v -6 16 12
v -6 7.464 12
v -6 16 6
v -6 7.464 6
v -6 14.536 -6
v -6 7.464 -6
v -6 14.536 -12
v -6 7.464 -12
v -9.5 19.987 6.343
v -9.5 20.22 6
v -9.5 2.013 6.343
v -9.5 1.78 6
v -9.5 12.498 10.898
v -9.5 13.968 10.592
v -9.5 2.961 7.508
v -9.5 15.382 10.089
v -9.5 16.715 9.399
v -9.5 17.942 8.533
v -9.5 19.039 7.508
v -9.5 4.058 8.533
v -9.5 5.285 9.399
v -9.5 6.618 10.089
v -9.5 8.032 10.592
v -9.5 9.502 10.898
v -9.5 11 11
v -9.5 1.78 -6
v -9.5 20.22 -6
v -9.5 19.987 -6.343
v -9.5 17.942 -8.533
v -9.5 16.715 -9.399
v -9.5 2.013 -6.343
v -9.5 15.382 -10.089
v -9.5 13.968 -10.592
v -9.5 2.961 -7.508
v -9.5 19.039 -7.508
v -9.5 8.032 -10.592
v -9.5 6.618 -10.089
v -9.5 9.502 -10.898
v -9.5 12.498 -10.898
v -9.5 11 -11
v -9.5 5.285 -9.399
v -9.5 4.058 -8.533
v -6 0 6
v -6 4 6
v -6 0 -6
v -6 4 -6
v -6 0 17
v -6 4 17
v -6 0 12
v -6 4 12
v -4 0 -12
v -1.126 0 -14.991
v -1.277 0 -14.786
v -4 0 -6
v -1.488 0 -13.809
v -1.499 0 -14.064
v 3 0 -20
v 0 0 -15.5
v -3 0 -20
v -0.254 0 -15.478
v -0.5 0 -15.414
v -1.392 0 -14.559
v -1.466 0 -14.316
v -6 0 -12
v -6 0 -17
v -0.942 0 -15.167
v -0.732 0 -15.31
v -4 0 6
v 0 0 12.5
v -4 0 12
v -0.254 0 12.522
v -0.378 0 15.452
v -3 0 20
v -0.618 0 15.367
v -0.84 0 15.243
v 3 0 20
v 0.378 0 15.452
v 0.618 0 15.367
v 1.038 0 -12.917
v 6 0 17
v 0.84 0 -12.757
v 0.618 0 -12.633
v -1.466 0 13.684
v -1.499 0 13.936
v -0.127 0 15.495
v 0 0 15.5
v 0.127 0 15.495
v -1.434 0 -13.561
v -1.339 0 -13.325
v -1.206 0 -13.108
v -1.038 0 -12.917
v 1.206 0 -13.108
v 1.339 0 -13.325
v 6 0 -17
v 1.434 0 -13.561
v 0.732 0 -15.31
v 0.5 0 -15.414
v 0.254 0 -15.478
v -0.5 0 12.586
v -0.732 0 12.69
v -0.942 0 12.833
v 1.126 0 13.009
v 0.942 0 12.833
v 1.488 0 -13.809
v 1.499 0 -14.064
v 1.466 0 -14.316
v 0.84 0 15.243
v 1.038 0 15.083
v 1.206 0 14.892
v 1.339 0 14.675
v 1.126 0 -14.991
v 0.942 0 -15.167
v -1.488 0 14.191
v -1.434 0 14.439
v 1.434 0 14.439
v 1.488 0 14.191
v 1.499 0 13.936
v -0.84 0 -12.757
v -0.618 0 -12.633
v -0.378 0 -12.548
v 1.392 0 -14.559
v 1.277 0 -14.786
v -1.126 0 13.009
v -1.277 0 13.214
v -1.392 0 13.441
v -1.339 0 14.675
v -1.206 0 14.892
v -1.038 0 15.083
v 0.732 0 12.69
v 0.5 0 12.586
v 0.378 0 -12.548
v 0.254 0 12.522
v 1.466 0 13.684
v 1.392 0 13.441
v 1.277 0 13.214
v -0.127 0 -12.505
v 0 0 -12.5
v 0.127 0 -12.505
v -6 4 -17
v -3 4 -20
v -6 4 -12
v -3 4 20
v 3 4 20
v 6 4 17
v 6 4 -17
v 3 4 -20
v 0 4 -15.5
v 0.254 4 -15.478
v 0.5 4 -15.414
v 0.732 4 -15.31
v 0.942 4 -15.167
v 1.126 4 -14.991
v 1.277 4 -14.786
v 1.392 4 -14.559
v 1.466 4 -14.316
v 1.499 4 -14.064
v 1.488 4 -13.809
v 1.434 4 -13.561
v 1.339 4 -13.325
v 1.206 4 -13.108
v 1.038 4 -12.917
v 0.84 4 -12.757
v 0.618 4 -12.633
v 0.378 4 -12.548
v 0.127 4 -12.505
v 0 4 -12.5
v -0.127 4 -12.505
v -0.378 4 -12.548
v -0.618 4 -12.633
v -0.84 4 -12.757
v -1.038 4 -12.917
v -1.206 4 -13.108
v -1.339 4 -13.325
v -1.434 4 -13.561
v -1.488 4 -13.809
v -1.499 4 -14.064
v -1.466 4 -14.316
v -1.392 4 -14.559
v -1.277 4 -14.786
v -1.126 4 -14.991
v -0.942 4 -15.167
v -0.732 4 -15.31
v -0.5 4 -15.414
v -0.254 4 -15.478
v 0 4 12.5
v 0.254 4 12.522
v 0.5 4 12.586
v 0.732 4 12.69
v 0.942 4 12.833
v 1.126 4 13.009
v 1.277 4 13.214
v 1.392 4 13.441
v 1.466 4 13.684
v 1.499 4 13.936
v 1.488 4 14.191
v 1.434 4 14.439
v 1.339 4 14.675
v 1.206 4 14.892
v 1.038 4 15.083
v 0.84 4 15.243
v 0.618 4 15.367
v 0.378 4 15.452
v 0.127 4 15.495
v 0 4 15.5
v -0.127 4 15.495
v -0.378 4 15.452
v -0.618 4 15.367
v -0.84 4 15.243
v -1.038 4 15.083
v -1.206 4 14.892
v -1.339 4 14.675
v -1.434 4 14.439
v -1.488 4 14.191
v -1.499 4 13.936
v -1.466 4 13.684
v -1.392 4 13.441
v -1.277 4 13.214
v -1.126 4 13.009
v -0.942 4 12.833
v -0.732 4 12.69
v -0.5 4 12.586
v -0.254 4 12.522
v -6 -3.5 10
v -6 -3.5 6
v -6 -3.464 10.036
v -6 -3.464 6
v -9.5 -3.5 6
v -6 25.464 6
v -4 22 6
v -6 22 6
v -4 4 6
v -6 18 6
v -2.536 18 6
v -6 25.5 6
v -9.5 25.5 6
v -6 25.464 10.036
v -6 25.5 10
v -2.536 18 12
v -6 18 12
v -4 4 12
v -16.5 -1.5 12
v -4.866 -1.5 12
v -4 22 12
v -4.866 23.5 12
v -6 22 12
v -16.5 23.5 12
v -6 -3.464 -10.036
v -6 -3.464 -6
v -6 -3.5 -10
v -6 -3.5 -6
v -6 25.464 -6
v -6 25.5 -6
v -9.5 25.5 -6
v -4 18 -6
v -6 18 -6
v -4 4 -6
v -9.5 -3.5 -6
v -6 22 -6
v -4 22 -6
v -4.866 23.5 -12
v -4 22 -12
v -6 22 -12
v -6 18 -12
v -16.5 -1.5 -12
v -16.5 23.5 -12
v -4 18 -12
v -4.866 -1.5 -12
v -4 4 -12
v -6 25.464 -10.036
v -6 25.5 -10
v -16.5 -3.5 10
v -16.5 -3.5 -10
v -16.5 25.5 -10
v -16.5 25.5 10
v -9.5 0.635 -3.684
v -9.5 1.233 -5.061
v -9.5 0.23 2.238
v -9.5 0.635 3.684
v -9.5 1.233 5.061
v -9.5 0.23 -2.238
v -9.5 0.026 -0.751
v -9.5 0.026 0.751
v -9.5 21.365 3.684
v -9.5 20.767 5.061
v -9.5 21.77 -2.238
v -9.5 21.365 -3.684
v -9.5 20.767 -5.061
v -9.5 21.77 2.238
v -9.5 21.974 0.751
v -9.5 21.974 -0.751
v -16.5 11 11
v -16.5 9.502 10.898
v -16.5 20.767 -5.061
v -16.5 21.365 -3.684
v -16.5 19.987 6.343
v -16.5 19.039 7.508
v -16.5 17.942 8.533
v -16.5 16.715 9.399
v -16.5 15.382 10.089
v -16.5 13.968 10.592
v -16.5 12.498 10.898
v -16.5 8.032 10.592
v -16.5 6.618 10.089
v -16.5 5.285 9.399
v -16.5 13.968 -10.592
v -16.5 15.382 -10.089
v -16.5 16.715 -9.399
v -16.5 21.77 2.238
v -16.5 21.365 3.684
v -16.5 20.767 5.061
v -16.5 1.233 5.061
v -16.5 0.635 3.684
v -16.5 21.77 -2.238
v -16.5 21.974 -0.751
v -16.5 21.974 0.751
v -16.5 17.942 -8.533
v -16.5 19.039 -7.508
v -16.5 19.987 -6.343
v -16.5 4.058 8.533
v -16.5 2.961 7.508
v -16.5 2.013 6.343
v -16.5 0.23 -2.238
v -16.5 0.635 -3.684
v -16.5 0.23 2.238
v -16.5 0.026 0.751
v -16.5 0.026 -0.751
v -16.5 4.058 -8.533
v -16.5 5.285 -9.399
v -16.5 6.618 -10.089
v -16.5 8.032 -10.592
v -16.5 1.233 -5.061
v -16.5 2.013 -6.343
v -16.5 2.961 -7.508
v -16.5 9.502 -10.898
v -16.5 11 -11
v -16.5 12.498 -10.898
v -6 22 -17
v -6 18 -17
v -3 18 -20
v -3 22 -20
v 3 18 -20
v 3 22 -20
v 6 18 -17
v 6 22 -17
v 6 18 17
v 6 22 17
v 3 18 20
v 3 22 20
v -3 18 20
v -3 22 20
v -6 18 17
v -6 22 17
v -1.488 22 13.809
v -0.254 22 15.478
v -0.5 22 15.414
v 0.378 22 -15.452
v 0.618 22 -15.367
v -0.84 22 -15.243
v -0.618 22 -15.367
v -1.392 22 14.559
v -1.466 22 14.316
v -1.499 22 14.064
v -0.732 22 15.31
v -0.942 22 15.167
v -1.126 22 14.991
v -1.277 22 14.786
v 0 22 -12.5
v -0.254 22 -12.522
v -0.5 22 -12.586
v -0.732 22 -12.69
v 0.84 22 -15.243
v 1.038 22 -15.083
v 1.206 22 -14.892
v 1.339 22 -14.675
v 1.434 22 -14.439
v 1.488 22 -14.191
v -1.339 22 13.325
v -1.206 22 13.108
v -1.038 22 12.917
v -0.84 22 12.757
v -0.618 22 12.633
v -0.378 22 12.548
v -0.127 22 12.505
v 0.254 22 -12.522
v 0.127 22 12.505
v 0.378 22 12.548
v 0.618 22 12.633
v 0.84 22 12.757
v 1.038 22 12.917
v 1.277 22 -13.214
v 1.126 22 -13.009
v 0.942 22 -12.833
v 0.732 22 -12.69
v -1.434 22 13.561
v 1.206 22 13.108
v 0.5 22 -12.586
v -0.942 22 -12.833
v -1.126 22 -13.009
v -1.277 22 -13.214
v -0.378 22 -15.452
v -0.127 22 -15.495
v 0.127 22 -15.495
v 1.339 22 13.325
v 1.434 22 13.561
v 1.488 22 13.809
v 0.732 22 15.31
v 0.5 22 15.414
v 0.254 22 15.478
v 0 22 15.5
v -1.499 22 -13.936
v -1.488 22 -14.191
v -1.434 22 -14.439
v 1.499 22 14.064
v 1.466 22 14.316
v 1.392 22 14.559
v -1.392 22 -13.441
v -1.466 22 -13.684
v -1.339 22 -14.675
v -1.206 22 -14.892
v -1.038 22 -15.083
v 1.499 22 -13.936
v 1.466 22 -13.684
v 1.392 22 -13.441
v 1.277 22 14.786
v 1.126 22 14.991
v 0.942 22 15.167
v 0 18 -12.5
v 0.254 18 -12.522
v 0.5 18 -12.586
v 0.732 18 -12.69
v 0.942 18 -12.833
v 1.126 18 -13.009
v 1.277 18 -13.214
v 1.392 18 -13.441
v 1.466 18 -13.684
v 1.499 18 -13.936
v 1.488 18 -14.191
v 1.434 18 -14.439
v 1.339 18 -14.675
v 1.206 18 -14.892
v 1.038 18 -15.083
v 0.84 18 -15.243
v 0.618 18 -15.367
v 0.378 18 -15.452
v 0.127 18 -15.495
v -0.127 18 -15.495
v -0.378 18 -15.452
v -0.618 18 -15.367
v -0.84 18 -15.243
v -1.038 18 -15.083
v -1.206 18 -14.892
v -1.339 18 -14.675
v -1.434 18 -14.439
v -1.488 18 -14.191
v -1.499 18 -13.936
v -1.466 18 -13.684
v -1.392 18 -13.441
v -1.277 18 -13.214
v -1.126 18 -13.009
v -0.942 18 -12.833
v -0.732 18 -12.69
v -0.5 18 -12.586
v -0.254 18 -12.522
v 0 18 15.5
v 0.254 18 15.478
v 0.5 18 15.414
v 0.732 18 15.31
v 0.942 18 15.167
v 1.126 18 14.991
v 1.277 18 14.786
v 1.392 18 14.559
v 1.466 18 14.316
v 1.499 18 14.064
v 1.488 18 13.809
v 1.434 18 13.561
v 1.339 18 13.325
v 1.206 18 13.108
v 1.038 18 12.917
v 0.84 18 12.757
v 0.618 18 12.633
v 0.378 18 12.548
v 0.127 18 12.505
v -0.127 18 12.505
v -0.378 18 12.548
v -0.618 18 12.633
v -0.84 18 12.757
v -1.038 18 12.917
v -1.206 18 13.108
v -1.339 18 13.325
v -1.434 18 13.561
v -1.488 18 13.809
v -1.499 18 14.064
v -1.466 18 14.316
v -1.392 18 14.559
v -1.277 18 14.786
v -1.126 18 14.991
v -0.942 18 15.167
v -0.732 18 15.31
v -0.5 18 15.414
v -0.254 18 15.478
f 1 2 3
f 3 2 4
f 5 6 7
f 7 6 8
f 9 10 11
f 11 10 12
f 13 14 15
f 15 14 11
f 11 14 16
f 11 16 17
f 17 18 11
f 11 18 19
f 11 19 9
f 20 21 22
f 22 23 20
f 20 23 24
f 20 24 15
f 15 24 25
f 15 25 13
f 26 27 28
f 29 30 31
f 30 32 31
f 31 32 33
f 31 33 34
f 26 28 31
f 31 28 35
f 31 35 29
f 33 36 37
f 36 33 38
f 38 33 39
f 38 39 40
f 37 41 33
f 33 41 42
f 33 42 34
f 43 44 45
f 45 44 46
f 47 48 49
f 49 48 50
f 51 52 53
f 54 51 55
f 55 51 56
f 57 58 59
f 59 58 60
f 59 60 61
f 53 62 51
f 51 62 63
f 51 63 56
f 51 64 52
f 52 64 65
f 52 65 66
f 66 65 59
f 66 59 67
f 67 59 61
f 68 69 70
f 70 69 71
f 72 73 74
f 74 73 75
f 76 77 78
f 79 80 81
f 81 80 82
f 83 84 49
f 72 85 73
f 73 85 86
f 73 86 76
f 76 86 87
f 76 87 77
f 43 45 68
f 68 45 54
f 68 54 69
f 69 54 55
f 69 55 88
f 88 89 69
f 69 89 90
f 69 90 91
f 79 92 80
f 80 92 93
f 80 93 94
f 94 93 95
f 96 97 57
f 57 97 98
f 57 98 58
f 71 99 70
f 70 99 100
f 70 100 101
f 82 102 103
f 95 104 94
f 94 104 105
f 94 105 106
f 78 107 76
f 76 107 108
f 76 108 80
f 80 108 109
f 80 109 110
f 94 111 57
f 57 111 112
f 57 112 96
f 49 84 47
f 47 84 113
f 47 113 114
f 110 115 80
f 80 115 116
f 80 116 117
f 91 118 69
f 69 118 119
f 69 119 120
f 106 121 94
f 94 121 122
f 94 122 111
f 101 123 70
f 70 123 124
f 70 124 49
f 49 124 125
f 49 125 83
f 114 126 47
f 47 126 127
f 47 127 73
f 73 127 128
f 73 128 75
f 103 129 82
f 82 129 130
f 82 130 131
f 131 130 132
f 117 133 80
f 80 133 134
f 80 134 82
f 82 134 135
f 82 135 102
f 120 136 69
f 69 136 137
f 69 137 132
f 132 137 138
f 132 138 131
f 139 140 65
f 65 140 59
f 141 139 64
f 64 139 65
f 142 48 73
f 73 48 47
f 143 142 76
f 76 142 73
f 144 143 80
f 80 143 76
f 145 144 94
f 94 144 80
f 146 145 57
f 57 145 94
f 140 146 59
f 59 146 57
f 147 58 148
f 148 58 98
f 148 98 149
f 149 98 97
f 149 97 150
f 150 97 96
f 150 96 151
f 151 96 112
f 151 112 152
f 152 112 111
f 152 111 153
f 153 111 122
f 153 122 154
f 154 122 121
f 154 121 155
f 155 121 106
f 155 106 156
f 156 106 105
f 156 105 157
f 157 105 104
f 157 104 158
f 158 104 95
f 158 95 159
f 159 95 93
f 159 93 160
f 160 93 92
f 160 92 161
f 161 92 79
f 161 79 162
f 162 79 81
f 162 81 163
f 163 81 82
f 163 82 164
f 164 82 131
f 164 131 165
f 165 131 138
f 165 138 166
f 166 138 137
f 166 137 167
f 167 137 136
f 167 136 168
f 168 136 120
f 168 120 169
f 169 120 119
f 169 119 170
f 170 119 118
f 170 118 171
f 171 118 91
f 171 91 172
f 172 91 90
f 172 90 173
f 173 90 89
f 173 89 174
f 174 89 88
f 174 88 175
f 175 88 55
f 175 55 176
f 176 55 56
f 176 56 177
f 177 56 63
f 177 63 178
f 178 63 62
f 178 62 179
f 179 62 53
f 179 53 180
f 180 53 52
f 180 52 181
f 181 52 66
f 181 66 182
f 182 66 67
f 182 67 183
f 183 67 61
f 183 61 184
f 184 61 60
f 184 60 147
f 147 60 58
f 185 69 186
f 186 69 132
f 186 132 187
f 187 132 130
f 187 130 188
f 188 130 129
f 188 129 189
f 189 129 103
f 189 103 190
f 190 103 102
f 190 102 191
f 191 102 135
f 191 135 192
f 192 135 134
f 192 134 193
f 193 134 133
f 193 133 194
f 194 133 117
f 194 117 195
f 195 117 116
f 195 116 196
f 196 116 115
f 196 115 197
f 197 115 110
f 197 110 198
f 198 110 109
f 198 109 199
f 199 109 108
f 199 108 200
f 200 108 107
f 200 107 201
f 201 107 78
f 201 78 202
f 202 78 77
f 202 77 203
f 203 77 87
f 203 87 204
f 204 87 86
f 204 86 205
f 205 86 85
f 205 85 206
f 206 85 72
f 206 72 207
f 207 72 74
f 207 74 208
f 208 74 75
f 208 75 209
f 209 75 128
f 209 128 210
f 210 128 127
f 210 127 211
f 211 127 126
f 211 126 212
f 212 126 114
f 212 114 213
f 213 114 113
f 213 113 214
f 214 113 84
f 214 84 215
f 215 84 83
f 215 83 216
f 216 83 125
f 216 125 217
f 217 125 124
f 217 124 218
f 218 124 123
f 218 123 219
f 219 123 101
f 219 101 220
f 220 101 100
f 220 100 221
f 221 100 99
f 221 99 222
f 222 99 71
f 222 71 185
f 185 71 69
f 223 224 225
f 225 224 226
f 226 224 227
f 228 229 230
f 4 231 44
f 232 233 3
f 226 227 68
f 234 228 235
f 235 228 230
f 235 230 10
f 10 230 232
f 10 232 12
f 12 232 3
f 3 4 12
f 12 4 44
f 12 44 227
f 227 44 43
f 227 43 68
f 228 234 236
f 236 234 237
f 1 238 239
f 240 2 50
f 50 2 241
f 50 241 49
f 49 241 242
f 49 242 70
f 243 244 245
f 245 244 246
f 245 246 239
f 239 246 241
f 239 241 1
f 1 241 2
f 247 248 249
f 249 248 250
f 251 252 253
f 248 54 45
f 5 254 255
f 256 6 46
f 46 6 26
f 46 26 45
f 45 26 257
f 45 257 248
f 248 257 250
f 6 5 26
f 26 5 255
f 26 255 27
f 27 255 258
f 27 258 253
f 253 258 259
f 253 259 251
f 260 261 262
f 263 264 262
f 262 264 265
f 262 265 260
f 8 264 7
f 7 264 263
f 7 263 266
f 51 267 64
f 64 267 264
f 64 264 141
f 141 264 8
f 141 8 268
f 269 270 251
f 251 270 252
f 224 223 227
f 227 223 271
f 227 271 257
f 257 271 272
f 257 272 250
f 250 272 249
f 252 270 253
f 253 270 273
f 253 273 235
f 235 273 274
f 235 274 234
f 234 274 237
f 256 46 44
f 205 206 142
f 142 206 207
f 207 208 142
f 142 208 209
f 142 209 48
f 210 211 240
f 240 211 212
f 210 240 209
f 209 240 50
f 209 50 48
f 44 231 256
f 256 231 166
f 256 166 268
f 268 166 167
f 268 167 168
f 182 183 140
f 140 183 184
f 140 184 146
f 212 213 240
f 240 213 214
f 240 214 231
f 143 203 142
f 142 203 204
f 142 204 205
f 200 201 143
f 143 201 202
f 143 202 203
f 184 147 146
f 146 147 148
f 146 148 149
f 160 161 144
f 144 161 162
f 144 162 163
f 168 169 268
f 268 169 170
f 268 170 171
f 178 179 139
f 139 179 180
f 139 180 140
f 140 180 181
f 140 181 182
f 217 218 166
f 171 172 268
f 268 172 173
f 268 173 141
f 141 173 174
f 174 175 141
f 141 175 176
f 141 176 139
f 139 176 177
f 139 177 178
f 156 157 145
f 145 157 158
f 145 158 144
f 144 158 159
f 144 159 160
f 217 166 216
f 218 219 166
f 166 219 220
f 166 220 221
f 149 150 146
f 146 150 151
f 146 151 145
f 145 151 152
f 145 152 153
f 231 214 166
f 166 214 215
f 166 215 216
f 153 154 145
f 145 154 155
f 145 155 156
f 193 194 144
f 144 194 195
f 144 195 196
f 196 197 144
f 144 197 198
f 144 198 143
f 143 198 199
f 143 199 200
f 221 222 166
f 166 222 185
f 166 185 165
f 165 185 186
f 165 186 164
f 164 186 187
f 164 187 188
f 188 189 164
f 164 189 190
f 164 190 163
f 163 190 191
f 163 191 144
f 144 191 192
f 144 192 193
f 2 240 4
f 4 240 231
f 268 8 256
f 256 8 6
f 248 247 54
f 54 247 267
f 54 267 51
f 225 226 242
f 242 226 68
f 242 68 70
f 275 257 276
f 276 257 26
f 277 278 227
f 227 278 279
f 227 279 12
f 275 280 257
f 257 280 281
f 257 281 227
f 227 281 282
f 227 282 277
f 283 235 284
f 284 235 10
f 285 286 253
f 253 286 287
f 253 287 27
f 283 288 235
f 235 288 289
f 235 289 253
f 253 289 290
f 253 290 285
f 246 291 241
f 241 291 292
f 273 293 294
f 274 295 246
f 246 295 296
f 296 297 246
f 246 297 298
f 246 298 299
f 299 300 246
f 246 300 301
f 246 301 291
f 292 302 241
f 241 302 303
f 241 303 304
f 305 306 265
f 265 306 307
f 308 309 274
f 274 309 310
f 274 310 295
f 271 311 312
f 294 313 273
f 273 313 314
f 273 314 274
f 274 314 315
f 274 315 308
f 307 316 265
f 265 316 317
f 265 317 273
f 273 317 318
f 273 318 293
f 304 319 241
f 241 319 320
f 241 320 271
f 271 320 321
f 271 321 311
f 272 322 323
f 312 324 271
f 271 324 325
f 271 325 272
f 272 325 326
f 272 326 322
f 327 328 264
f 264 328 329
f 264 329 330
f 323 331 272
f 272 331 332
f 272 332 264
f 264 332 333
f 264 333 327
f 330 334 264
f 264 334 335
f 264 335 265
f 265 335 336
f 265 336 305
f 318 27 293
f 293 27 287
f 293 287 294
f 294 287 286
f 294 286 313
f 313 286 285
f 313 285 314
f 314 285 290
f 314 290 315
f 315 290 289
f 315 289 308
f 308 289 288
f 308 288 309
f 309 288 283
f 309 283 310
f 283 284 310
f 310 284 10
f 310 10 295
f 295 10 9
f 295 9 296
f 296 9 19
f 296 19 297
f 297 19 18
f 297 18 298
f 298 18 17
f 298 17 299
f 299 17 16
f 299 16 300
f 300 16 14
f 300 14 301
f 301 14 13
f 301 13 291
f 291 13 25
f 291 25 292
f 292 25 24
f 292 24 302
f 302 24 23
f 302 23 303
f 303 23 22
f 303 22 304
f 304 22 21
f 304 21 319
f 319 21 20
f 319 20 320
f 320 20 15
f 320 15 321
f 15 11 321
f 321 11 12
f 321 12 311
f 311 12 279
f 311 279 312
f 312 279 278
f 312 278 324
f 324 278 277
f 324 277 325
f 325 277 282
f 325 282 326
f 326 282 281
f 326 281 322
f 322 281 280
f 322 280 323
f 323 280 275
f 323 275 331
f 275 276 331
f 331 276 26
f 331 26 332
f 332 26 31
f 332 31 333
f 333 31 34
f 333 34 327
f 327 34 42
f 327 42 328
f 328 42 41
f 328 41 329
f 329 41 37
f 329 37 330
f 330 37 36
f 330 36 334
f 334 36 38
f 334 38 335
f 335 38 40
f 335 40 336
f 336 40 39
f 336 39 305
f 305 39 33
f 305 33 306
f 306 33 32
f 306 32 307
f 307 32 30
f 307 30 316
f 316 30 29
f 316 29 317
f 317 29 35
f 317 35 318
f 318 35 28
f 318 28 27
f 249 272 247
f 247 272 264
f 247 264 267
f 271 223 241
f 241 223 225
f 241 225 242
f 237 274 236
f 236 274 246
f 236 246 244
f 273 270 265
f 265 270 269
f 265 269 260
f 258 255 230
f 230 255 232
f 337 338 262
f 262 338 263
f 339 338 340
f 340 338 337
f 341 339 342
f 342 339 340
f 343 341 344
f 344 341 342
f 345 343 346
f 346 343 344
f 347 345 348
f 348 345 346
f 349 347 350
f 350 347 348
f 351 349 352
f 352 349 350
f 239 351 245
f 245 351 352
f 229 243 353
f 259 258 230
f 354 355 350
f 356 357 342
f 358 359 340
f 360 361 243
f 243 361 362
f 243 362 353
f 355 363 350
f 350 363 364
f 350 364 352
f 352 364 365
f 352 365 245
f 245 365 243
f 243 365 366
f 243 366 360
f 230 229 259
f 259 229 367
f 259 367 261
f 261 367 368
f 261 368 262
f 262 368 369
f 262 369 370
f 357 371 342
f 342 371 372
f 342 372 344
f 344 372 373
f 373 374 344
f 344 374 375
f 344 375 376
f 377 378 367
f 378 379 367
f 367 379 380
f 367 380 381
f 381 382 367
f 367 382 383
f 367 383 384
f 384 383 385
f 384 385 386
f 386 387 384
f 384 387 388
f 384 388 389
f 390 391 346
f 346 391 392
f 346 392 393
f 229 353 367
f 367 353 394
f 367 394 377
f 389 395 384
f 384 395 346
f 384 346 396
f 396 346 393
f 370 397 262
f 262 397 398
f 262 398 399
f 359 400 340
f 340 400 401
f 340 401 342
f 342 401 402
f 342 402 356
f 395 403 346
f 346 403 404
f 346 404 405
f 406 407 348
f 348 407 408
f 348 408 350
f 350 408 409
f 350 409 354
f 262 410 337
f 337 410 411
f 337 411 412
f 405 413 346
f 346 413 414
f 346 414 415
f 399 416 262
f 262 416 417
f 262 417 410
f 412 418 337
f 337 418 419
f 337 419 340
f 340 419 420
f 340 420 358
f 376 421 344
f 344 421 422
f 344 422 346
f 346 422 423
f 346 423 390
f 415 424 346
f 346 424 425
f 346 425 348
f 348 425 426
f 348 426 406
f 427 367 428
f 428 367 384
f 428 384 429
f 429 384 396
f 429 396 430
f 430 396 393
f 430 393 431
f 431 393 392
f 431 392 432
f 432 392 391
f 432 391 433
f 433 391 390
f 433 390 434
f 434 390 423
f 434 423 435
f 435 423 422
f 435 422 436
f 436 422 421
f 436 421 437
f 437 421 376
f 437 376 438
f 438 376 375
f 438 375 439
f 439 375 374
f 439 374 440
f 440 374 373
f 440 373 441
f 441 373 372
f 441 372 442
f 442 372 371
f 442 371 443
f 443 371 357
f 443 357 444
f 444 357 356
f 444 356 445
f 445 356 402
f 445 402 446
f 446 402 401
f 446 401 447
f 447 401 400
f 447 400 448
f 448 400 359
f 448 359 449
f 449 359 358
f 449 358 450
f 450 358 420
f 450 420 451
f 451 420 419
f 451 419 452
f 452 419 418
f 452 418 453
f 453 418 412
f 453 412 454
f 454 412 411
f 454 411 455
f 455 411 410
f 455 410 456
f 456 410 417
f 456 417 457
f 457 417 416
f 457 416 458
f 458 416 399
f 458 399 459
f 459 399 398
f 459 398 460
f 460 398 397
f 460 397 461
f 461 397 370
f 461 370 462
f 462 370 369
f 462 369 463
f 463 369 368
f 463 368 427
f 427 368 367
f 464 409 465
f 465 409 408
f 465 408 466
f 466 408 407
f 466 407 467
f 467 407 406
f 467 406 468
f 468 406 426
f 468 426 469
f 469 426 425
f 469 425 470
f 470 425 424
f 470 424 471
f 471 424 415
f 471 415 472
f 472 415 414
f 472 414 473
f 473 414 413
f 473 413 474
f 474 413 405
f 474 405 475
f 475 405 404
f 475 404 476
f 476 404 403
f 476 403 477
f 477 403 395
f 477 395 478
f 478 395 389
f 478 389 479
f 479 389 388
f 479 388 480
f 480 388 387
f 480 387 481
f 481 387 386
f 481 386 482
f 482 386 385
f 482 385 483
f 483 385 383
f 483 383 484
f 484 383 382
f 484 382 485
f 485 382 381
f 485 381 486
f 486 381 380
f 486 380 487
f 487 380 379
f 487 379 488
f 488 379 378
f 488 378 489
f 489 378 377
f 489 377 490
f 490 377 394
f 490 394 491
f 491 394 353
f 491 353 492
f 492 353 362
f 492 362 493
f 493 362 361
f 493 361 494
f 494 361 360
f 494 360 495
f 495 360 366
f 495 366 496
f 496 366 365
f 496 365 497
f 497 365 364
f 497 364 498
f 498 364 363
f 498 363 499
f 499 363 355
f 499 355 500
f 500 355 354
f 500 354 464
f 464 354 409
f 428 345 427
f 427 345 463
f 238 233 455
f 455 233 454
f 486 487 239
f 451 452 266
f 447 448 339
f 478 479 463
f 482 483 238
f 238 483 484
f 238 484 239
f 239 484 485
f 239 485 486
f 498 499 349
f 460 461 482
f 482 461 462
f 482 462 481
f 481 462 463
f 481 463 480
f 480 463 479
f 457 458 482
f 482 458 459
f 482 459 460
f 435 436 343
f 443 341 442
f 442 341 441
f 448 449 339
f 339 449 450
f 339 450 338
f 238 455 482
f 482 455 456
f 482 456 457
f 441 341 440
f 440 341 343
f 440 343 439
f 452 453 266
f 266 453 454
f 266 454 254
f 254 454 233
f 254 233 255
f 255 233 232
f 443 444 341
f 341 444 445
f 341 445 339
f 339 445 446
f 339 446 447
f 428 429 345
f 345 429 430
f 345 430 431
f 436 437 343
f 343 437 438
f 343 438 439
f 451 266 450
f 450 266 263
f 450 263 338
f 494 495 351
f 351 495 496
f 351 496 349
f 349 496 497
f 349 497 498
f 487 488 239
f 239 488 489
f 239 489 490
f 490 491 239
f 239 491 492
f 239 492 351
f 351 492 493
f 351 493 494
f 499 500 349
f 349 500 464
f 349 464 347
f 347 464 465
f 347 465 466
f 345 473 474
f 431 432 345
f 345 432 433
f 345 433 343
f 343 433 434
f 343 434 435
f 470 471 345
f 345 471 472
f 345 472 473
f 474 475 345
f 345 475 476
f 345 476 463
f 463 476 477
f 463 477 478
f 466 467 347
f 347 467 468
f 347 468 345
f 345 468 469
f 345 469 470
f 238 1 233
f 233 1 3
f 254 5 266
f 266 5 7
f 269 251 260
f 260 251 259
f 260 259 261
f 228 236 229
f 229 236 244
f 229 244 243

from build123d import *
from OCP.BRepFilletAPI import BRepFilletAPI_MakeChamfer

# Parameters (mm, degrees)
SKETCH1_R           = 1.5
BOSS_EXTRUDE1_DEPTH = 3
BOSS_EXTRUDE2_START = 22.5
SKETCH2_W           = 3.5
SKETCH2_H           = 6
BOSS_EXTRUDE2_DEPTH = 29
SKETCH4_R           = 1.5
BOSS_EXTRUDE5_DEPTH = 1
CHAMFER2_SIZE       = 2
CHAMFER2_SIZE2      = 3.464101615
SKETCH3_W           = 24
SKETCH3_H           = 29
SKETCH3_R           = 11
BOSS_EXTRUDE4_DEPTH = 7
CHAMFER3_SIZE       = 2
MIRROR1_START       = 18
MIRROR1_OUTLINE_R   = 1.5
MIRROR1_DEPTH       = 4
MIRROR1_START_2     = -12
MIRROR1_2_DEPTH     = 6
MIRROR1_START_3     = 6
MIRROR1_3_DEPTH     = 6
MIRROR1_START_4     = 25.102290732
MIRROR1_4_OUTLINE_W = 2
MIRROR1_4_OUTLINE_H = 18.102290732
MIRROR1_4_DEPTH     = 1.897709268
MIRROR1_START_5     = 7.071067812
MIRROR1_5_OUTLINE_W = 2
MIRROR1_5_OUTLINE_H = 2.897709268
MIRROR1_5_DEPTH     = 3.889087296


with BuildPart() as part:
    # Sketch1 → Boss-Extrude1 (new body)
    with BuildSketch(Plane(origin=(0, 0, 0), x_dir=(1, 0, 0), z_dir=(0, 1, 0))):
        Polygon((-6, 17), (-3, 20), (3, 20), (6, 17), (6, -17), (3, -20), (-3, -20), (-6, -17), align=None)
        with Locations(Location((0, 14, 0), (0, 0, 270))):
            Circle(SKETCH1_R, mode=Mode.SUBTRACT)
        with Locations(Location((0, -14, 0), (0, 0, 270))):
            Circle(SKETCH1_R, mode=Mode.SUBTRACT)
    extrude(amount=BOSS_EXTRUDE1_DEPTH)

    # Sketch2 → Boss-Extrude2 (add)
    with BuildSketch(Plane(origin=(0, 3, 0), x_dir=(1, 0, 0), z_dir=(0, 1, 0)).offset(BOSS_EXTRUDE2_START)):
        with Locations((-7.75, 9)):
            Rectangle(SKETCH2_W, SKETCH2_H)
        with Locations((-7.75, -9)):
            Rectangle(SKETCH2_W, SKETCH2_H)
    extrude(amount=-BOSS_EXTRUDE2_DEPTH)

    # Sketch4 → Boss-Extrude5 (add)
    with BuildSketch(Plane(origin=(0, 3, 0), x_dir=(1, 0, 0), z_dir=(0, 1, 0))):
        Polygon((-3, 20), (-6, 17), (-6, 12), (-6, 6), (-6, -6), (-6, -12), (-6, -17), (-3, -20), (3, -20), (6, -17), (6, 17), (3, 20), align=None)
        with Locations(Location((0, 14, 0), (0, 0, 270))):
            Circle(SKETCH4_R, mode=Mode.SUBTRACT)
        with Locations(Location((0, -14, 0), (0, 0, 270))):
            Circle(SKETCH4_R, mode=Mode.SUBTRACT)
    extrude(amount=BOSS_EXTRUDE5_DEPTH)

    # Chamfer2: one chamfer whose edges measure the first distance from different faces: ONE call of the kernel's chamfer builder (chamfer() names one face for all edges)
    chamfer2_edges_1 = [part.edges().sort_by_distance(p)[0] for p in [
        (-6, 0, -9),
        (-6, 0, 9),
    ]]
    chamfer2_side_1 = [part.faces().sort_by_distance(p)[0] for p in [
        (0, 0, 0),
    ]]
    chamfer2_edges_2 = [part.edges().sort_by_distance(p)[0] for p in [
        (-6, 4, -9),
        (-6, 4, 9),
    ]]
    chamfer2_side_2 = [part.faces().sort_by_distance(p)[0] for p in [
        (0, 4, 0),
    ]]
    chamfer2 = BRepFilletAPI_MakeChamfer(part.part.solid().wrapped)
    for e in chamfer2_edges_1:
        chamfer2.Add(CHAMFER2_SIZE, CHAMFER2_SIZE2, e.wrapped, chamfer2_side_1[0].wrapped)  # the first distance lies on this face
    for e in chamfer2_edges_2:
        chamfer2.Add(CHAMFER2_SIZE, CHAMFER2_SIZE2, e.wrapped, chamfer2_side_2[0].wrapped)  # the first distance lies on this face
    add(Compound.cast(chamfer2.Shape()), mode=Mode.REPLACE)

    # Sketch3 → Boss-Extrude4 (add)
    with BuildSketch(Plane.ZY.offset(9.5)):
        with Locations((0, 11)):
            Rectangle(SKETCH3_W, SKETCH3_H)
        with Locations(Location((0, 11, 0), (0, 0, 236.944268849))):
            Circle(SKETCH3_R, mode=Mode.SUBTRACT)
    extrude(amount=BOSS_EXTRUDE4_DEPTH)

    # Chamfer3
    chamfer3_edges = [part.edges().sort_by_distance(p)[0] for p in [
        (-11.25, 25.5, -12),
        (-11.25, -3.5, -12),
        (-11.25, -3.5, 12),
        (-11.25, 25.5, 12),
    ]]
    chamfer(chamfer3_edges, length=CHAMFER3_SIZE)

    # Mirror1: read off the stored shape, not the designer's step
    # Mirror1 outline → Mirror1 (add)
    with BuildSketch(Plane(origin=(0, 0, 0), x_dir=(1, 0, 0), z_dir=(0, 1, 0)).offset(MIRROR1_START)):
        Polygon((-6, 17), (-6, 6), (-6, -6), (-6, -17), (-3, -20), (3, -20), (6, -17), (6, 17), (3, 20), (-3, 20), align=None)
        with Locations((0, -14)):
            Circle(MIRROR1_OUTLINE_R, mode=Mode.SUBTRACT)
        with Locations((0, 14)):
            Circle(MIRROR1_OUTLINE_R, mode=Mode.SUBTRACT)
    extrude(amount=MIRROR1_DEPTH)

    # Mirror1 2 outline → Mirror1 2 (add)
    with BuildSketch(Plane.XY.offset(MIRROR1_START_2)):
        Polygon((-6, 14.535898385), (-4, 18), (-6, 18), align=None)
        Polygon((-4, 22), (-6, 25.464101615), (-6, 22), align=None)
    extrude(amount=MIRROR1_2_DEPTH)

    # Mirror1 3 outline → Mirror1 3 (add)
    with BuildSketch(Plane.XY.offset(MIRROR1_START_3)):
        Polygon((-2.535898385, 18), (-6, 18), (-6, 16), align=None)
        Polygon((-4, 22), (-6, 25.464101615), (-6, 22), align=None)
    extrude(amount=MIRROR1_3_DEPTH)

    # Mirror1 4 outline → Mirror1 4 (cut)
    with BuildSketch(Plane(origin=(0, 0, 0), x_dir=(1, 0, 0), z_dir=(0, 0.7071067811865466, 0.7071067811865486)).offset(MIRROR1_START_4)):
        with Locations((-5, 16.051145366)):
            Rectangle(MIRROR1_4_OUTLINE_W, MIRROR1_4_OUTLINE_H)
    extrude(amount=MIRROR1_4_DEPTH, mode=Mode.SUBTRACT)

    # Mirror1 5 outline → Mirror1 5 (cut)
    with BuildSketch(Plane(origin=(0, 0, 0), x_dir=(1, 0, 0), z_dir=(0, 0.7071067811865466, 0.7071067811865486)).offset(MIRROR1_START_5)):
        with Locations((-5, 26.551145366)):
            Rectangle(MIRROR1_5_OUTLINE_W, MIRROR1_5_OUTLINE_H)
    extrude(amount=MIRROR1_5_DEPTH, mode=Mode.SUBTRACT)


solid = part.part
